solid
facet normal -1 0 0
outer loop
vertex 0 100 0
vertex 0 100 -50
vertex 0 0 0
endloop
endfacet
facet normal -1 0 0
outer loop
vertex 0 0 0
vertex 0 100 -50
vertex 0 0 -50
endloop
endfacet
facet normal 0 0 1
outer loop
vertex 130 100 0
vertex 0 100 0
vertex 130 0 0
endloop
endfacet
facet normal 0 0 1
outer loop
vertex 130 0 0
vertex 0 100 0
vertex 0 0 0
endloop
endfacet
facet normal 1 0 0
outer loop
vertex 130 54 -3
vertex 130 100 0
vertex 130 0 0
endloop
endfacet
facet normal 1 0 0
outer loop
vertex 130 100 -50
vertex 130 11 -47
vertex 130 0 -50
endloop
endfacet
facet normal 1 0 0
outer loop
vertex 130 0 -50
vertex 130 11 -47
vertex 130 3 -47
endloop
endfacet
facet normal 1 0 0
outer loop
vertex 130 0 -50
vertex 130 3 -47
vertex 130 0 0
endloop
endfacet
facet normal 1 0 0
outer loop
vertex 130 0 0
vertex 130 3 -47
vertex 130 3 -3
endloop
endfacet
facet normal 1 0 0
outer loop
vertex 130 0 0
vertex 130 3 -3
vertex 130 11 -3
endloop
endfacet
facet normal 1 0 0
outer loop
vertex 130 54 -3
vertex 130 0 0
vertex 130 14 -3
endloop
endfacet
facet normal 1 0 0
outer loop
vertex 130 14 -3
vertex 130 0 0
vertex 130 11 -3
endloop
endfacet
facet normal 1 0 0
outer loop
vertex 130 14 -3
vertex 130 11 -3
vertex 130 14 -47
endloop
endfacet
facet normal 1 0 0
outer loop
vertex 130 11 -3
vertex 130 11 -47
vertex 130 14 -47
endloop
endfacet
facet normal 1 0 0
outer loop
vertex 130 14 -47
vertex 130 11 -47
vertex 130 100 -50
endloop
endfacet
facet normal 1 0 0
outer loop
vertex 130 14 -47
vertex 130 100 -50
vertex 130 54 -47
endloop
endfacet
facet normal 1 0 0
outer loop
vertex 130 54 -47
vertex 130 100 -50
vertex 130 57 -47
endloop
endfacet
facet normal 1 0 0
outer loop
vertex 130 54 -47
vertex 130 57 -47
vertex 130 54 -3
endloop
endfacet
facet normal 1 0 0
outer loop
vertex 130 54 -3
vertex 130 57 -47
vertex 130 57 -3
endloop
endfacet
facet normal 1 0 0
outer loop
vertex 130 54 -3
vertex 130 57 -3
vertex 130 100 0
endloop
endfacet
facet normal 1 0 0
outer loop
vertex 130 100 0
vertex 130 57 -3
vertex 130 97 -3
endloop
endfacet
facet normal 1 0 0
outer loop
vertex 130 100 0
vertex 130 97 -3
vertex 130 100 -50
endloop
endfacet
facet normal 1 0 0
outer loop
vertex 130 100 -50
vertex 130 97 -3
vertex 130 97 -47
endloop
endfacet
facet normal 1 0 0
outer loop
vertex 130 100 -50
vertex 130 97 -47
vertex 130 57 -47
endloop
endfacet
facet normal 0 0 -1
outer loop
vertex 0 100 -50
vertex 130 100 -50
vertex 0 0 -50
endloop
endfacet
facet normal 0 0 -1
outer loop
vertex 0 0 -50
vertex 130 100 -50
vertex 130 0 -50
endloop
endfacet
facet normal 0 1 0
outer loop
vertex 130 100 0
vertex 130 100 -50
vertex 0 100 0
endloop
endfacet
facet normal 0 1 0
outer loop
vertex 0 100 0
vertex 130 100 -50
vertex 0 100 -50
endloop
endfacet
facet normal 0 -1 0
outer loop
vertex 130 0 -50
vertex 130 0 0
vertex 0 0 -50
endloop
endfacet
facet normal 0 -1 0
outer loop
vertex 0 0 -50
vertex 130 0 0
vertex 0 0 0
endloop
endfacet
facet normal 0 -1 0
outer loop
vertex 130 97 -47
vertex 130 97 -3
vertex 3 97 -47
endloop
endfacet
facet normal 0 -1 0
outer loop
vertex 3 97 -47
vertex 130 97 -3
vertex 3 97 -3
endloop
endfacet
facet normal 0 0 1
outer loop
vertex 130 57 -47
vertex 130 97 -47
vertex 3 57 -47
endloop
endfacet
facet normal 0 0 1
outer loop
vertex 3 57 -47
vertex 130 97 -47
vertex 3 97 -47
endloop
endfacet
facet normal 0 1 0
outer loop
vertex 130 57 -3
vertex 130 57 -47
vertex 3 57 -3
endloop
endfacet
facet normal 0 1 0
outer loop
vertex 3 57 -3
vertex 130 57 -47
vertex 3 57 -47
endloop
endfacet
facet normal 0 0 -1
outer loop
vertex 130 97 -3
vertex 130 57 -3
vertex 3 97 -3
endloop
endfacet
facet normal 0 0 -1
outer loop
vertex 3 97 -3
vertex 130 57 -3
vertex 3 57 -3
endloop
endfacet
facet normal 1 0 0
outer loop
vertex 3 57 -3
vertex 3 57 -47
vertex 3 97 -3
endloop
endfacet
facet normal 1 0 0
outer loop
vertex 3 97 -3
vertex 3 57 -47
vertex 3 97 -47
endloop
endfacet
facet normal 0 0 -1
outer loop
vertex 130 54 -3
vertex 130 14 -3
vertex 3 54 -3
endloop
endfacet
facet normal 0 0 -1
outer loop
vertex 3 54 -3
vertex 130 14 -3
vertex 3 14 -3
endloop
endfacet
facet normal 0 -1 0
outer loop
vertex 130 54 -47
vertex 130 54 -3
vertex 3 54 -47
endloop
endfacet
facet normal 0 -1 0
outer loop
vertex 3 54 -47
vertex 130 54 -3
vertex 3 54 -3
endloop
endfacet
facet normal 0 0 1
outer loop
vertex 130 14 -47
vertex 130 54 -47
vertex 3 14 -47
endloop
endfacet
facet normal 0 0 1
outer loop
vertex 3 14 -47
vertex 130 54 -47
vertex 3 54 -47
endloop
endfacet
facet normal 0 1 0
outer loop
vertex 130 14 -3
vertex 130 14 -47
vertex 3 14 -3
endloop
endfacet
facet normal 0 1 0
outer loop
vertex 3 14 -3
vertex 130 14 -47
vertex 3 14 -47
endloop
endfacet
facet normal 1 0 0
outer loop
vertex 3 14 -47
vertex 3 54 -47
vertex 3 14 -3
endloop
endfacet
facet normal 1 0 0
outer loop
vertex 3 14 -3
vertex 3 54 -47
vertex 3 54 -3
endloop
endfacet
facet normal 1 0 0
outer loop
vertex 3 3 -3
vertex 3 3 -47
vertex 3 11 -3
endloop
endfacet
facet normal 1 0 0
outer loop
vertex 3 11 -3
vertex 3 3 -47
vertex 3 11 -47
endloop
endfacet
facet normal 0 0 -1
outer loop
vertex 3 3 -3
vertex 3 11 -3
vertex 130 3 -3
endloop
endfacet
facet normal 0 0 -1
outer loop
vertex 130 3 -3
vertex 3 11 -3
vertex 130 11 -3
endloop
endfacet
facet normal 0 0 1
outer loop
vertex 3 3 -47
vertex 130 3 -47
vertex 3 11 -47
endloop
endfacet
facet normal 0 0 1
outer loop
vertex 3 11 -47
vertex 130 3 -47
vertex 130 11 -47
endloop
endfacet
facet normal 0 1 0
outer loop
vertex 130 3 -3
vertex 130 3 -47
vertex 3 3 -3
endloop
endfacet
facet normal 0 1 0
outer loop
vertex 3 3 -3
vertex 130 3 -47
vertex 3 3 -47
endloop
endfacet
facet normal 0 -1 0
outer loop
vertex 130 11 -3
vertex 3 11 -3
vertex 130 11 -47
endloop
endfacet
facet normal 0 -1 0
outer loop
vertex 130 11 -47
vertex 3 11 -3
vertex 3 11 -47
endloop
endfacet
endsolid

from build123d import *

# Parameters (mm, degrees)
ESQUISSE1_W             = 130
ESQUISSE1_H             = 50
BOSS_EXTRU_1_DEPTH      = 100
ESQUISSE2_W             = 44
ESQUISSE2_H             = 40
ENL_V_MAT_EXTRU_1_DEPTH = 127
ESQUISSE3_W             = 44
ESQUISSE3_H             = 40
ENL_V_MAT_EXTRU_2_DEPTH = 127
COQUE1_START            = -47
COQUE1_OUTLINE_W        = 127
COQUE1_OUTLINE_H        = 8
COQUE1_DEPTH            = 44


# Read off the part's stored shape, not the designer's step: Coque1
with BuildPart() as part:
    # Esquisse1 → Boss.-Extru.1 (new body)
    with BuildSketch(Plane(origin=(0, 0, 0), x_dir=(1, 0, 0), z_dir=(0, 1, 0))):
        with Locations((65, 25)):
            Rectangle(ESQUISSE1_W, ESQUISSE1_H)
    extrude(amount=BOSS_EXTRU_1_DEPTH)

    # Esquisse2 → Enlèv. mat.-Extru.1 (cut)
    with BuildSketch(Plane(origin=(130, 0, 0), x_dir=(0, 0, -1), z_dir=(1, 0, 0))):
        with Locations((25, 77)):
            Rectangle(ESQUISSE2_W, ESQUISSE2_H)
    extrude(amount=-ENL_V_MAT_EXTRU_1_DEPTH, mode=Mode.SUBTRACT)

    # Esquisse3 → Enlèv. mat.-Extru.2 (cut)
    with BuildSketch(Plane(origin=(130, 0, 0), x_dir=(0, 0, -1), z_dir=(1, 0, 0))):
        with Locations((25, 34)):
            Rectangle(ESQUISSE3_W, ESQUISSE3_H)
    extrude(amount=-ENL_V_MAT_EXTRU_2_DEPTH, mode=Mode.SUBTRACT)

    # Coque1 outline → Coque1 (cut)
    with BuildSketch(Plane.XY.offset(COQUE1_START)):
        with Locations((66.5, 7)):
            Rectangle(COQUE1_OUTLINE_W, COQUE1_OUTLINE_H)
    extrude(amount=COQUE1_DEPTH, mode=Mode.SUBTRACT)


solid = part.part
